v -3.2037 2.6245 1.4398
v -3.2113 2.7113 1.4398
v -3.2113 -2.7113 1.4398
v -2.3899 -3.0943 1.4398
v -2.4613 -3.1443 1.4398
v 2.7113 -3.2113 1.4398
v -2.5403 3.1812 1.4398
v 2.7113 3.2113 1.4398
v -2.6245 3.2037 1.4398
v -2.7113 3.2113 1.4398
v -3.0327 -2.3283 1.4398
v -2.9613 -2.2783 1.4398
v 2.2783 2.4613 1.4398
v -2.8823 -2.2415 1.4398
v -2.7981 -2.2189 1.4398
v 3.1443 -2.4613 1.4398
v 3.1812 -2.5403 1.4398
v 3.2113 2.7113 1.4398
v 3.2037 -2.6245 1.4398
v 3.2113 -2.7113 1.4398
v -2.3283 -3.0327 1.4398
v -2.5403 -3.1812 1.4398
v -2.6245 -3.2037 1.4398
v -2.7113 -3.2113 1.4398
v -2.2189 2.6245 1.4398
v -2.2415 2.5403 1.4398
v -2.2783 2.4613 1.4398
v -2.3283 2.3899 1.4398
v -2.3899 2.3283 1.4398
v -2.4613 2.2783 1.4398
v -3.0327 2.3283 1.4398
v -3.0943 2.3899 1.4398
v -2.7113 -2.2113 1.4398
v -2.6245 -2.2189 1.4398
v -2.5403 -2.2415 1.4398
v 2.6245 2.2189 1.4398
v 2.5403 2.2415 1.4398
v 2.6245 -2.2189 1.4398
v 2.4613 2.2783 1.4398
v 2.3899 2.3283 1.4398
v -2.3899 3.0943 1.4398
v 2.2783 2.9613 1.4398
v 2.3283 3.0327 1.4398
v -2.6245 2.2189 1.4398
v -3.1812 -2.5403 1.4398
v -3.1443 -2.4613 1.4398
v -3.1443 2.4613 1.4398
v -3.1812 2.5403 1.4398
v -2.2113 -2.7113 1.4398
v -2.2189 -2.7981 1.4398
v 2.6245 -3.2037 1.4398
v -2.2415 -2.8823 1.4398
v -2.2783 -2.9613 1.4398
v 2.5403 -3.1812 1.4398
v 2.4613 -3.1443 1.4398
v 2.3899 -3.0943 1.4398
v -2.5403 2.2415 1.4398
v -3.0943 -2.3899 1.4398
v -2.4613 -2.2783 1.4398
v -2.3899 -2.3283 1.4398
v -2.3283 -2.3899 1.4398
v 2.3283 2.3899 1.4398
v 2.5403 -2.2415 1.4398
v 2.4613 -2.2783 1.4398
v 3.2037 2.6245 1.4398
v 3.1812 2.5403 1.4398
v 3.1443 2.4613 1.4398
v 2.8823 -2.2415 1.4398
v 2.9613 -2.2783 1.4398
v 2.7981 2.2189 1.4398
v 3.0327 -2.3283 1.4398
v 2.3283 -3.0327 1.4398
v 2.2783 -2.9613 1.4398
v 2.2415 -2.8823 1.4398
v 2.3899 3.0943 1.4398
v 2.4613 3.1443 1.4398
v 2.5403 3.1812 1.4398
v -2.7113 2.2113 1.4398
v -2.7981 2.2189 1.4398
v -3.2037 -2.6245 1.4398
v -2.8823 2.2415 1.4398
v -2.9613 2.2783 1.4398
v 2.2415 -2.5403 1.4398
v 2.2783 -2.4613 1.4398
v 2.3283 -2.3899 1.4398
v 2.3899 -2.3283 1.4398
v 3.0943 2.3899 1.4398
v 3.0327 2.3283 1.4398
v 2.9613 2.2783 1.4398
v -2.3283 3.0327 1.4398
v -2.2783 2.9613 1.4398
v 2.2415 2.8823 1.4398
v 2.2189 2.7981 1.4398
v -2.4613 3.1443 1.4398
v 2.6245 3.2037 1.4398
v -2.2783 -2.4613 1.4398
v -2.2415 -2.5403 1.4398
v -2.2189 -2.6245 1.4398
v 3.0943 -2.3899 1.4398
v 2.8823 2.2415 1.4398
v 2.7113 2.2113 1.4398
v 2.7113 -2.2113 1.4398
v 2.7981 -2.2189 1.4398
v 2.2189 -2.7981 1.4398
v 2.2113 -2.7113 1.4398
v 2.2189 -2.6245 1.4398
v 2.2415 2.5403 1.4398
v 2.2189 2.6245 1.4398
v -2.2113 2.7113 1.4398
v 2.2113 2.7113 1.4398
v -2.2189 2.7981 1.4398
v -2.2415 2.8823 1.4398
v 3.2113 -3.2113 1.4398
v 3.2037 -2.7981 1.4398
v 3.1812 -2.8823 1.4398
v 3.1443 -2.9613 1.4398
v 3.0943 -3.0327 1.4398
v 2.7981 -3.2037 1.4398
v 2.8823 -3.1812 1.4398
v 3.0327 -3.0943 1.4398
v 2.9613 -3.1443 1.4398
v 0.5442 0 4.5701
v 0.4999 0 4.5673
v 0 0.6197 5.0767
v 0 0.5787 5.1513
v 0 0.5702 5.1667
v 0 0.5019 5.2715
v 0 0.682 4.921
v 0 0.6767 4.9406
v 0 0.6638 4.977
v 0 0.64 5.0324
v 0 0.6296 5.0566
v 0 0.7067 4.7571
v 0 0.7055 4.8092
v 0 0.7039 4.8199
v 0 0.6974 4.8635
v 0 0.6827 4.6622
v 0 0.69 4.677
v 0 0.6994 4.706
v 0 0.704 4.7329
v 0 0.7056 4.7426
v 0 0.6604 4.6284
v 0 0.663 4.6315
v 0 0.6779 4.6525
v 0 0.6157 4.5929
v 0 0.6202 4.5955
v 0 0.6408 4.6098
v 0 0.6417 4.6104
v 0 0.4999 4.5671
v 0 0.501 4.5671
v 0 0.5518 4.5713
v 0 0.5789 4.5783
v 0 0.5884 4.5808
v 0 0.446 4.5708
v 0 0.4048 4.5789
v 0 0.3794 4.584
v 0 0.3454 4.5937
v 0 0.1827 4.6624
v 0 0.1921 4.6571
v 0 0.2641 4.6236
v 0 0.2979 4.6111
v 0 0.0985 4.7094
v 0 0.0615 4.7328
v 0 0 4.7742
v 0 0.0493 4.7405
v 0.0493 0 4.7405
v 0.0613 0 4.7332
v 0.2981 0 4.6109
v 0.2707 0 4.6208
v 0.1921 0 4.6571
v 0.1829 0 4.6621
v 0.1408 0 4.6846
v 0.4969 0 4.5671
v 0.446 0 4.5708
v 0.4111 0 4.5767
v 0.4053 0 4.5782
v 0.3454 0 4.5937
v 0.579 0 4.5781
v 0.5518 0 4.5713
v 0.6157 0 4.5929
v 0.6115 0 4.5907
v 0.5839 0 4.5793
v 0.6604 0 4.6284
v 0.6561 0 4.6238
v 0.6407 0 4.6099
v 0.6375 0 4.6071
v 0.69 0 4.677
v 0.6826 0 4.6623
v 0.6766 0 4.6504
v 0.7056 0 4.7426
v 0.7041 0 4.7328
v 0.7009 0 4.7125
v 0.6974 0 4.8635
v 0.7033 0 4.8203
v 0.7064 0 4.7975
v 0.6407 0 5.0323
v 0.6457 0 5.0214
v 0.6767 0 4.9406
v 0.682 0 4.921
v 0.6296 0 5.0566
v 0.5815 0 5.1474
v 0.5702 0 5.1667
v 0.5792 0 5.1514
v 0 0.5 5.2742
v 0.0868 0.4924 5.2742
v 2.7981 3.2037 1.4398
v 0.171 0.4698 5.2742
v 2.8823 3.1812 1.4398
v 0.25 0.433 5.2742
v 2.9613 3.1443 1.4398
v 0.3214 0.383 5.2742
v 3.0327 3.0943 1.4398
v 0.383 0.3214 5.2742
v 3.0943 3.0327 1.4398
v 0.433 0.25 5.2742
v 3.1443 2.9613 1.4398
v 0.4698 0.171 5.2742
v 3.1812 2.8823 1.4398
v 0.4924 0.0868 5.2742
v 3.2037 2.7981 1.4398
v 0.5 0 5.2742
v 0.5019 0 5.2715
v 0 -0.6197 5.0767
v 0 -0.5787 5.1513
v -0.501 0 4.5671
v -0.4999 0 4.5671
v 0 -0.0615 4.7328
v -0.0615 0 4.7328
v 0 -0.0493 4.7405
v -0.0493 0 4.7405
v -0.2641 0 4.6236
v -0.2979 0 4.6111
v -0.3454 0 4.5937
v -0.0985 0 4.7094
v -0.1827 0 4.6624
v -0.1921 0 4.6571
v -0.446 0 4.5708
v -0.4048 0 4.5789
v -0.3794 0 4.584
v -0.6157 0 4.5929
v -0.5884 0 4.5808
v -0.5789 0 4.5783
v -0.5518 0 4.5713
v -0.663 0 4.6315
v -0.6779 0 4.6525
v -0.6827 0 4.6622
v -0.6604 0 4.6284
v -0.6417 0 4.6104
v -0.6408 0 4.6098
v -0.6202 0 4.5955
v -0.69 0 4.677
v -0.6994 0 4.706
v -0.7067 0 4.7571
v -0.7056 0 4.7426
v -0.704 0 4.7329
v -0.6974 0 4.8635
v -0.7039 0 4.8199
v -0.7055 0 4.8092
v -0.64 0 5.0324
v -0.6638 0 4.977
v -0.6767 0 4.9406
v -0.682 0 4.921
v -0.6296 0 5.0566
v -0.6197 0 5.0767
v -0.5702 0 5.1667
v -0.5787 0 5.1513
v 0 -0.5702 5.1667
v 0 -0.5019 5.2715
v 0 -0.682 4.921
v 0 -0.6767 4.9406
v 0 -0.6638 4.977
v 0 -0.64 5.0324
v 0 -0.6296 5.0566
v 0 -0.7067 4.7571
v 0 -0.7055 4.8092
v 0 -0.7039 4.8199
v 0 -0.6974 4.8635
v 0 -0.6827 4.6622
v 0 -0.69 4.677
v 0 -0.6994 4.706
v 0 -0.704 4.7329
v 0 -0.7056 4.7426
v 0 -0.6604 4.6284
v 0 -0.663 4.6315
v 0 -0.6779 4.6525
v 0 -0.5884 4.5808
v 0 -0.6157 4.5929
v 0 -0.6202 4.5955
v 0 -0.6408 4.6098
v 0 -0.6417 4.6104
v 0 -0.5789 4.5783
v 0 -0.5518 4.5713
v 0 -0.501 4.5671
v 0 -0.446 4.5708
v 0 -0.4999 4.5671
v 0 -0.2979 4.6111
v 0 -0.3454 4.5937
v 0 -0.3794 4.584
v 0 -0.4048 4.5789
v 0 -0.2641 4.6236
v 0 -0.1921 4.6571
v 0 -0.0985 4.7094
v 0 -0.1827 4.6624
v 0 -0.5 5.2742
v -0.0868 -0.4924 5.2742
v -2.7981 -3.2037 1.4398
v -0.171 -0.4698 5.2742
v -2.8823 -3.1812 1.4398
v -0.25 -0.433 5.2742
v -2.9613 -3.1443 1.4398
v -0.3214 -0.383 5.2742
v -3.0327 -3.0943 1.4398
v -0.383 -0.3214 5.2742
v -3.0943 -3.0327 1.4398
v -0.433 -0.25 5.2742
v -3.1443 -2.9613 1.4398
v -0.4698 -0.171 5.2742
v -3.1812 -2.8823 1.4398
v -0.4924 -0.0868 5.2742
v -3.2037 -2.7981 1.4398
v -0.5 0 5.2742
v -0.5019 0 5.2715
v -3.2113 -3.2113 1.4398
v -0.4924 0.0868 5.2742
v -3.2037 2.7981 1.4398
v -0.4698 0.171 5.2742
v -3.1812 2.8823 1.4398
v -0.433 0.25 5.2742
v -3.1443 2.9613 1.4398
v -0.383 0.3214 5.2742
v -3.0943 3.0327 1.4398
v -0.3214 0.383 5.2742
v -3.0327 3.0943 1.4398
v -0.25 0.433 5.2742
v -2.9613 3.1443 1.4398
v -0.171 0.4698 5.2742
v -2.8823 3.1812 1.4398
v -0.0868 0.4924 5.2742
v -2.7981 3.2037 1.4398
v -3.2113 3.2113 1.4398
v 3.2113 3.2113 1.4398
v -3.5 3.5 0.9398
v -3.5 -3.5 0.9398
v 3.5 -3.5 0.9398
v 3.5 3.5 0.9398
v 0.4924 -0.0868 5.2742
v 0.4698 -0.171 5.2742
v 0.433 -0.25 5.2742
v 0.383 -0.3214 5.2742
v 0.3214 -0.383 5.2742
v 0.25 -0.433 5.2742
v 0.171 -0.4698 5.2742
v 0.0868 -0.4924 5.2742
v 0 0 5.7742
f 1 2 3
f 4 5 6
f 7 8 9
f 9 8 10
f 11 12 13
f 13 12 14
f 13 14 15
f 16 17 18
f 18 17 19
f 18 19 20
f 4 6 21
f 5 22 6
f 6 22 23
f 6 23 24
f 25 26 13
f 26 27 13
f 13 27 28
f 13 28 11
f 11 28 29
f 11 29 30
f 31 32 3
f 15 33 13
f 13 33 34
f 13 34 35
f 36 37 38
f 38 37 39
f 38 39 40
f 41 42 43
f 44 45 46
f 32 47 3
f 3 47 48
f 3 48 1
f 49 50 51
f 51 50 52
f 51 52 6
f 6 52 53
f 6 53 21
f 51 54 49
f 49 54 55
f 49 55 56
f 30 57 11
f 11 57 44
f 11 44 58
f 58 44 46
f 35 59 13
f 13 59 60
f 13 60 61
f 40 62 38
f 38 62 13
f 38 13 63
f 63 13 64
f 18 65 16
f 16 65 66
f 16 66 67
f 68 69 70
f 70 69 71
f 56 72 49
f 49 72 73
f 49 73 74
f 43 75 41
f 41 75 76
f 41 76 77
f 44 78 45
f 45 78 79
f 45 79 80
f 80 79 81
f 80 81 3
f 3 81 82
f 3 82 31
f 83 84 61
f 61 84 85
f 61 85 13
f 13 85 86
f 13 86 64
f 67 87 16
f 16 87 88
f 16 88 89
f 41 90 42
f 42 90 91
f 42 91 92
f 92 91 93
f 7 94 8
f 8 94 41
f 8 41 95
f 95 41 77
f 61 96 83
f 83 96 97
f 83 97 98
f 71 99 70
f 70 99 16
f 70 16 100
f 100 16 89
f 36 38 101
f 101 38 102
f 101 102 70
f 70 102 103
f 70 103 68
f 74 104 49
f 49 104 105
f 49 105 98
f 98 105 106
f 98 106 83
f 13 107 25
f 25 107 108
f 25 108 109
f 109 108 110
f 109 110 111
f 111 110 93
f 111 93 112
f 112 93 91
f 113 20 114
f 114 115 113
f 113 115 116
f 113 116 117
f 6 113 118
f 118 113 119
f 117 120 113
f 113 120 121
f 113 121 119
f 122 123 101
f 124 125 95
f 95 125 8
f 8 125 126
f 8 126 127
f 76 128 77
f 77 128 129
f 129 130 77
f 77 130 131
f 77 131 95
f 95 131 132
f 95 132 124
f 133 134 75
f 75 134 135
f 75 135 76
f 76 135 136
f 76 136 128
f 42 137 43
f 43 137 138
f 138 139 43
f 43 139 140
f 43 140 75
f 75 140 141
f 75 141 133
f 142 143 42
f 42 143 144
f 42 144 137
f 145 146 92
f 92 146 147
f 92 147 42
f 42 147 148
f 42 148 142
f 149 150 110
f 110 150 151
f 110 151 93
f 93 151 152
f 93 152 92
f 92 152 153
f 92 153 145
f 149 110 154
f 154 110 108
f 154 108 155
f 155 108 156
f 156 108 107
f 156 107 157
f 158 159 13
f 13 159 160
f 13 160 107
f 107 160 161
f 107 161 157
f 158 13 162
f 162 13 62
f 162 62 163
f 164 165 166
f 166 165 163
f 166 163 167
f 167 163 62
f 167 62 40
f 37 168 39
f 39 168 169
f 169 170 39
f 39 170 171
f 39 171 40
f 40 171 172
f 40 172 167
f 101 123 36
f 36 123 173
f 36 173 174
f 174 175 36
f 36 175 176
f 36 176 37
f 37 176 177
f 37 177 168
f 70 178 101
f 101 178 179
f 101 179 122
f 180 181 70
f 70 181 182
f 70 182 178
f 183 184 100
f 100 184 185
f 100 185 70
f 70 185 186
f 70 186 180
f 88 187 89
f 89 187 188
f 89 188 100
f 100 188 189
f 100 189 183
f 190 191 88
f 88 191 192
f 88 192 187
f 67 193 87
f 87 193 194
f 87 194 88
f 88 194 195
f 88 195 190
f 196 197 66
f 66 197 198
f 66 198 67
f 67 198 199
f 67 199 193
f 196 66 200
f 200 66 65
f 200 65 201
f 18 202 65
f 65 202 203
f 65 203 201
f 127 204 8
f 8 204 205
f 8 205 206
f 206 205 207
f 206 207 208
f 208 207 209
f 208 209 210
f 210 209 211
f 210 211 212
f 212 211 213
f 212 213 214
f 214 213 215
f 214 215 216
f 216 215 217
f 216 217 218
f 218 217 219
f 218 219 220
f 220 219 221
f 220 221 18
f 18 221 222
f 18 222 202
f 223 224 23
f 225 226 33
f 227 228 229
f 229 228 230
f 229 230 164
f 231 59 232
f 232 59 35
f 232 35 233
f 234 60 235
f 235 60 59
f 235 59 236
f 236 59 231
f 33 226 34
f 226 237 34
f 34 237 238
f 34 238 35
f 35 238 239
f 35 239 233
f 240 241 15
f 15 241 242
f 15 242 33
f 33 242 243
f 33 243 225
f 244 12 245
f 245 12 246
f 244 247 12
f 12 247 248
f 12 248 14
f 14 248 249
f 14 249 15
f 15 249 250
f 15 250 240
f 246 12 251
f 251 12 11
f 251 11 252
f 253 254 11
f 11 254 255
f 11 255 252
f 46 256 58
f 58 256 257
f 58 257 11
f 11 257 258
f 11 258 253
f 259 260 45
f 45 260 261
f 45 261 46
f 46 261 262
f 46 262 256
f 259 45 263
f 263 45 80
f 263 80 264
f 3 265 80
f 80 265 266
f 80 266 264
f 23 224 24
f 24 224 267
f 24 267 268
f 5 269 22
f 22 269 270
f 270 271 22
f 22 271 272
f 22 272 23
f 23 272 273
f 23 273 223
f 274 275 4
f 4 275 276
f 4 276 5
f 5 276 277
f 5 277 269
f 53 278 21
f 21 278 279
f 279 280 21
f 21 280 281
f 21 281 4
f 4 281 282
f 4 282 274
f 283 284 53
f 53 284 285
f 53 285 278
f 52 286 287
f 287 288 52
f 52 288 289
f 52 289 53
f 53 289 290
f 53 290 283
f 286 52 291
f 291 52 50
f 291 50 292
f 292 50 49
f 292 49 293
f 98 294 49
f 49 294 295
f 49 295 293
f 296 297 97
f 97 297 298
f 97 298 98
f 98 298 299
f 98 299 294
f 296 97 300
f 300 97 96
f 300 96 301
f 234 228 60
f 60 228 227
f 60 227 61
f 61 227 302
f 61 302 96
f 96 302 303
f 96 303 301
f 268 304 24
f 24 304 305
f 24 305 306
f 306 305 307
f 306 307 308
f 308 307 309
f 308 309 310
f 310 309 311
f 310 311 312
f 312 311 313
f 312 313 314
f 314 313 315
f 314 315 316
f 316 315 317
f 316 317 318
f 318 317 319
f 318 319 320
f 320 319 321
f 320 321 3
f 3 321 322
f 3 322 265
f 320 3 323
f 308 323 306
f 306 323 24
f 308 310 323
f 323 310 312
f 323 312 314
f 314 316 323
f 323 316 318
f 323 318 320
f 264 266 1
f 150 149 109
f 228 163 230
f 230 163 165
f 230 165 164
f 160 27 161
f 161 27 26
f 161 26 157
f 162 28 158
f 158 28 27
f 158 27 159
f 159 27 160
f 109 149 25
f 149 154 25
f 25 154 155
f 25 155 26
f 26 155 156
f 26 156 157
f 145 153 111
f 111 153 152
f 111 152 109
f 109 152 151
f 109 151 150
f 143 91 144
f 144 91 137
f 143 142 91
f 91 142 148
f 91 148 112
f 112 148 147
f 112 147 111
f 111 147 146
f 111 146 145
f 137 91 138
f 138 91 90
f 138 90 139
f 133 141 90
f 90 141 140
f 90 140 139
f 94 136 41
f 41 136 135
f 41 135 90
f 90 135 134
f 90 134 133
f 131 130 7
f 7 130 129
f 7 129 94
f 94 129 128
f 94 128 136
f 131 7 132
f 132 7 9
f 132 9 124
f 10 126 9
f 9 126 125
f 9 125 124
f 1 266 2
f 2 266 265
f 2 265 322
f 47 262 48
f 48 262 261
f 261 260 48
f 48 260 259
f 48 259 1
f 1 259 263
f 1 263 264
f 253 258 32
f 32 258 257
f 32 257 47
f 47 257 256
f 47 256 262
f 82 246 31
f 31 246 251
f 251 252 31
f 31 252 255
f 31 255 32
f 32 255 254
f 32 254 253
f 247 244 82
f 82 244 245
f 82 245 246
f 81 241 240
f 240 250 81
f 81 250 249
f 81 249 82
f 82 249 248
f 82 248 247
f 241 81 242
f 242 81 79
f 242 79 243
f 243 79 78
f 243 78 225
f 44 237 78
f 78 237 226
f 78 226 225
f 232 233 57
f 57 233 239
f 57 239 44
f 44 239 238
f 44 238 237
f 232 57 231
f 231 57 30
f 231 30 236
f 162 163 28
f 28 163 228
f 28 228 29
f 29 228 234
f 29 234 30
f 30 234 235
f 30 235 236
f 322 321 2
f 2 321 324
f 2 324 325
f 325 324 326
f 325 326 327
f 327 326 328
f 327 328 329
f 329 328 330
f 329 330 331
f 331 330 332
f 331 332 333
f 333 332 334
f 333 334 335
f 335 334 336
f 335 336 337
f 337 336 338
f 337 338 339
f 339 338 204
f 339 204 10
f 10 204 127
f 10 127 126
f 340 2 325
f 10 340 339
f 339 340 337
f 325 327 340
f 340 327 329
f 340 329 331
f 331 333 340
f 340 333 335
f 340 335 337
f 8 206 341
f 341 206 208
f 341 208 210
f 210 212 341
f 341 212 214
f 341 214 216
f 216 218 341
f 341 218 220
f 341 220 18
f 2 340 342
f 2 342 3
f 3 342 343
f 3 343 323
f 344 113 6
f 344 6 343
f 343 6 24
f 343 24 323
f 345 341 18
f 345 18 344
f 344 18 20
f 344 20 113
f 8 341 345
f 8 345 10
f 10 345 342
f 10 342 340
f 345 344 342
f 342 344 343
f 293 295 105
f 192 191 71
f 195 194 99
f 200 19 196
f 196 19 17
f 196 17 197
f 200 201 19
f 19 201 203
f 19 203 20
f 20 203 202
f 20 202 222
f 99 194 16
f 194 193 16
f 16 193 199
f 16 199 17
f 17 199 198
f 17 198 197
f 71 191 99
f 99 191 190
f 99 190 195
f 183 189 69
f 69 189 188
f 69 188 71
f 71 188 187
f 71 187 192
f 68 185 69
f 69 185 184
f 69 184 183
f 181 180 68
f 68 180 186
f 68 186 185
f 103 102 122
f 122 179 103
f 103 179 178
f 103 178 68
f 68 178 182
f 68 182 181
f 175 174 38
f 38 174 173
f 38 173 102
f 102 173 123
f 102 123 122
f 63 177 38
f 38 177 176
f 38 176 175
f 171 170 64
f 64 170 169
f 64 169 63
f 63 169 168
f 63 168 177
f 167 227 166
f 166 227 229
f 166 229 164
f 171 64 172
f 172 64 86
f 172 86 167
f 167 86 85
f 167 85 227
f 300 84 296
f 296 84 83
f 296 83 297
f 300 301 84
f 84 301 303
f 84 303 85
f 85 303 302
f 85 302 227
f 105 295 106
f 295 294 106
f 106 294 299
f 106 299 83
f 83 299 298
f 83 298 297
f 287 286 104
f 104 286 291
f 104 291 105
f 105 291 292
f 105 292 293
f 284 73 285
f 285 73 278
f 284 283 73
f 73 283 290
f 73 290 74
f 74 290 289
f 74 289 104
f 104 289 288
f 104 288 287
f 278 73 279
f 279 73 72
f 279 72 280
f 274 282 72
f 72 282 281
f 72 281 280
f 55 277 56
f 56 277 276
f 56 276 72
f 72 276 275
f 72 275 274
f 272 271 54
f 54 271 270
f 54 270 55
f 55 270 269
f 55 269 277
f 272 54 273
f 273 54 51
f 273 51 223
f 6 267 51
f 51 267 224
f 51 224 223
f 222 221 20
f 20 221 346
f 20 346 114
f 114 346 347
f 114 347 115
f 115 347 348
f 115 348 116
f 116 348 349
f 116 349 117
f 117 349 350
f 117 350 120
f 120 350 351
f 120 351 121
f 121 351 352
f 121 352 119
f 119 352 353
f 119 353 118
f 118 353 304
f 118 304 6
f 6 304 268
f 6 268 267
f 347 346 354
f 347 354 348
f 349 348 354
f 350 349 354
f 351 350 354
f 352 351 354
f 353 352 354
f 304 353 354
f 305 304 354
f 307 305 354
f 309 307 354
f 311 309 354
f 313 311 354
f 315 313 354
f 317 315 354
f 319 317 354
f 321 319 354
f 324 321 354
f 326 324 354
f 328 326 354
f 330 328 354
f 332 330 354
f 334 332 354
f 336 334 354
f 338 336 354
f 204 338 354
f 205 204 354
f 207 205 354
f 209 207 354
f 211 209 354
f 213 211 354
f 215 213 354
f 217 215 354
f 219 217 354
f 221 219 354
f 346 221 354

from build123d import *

# Parameters (mm, degrees)
SKETCH1_W           = 14
SKETCH1_H           = 14
BOSS_EXTRUDE1_DEPTH = 1
BOSS_EXTRUDE1_TAPER = 30
SKETCH2_R           = 1
CIRPATTERN1_COUNT   = 4
SKETCH4_R           = 1
BOSS_EXTRUDE2_DEPTH = 10
BOSS_EXTRUDE2_TAPER = 45
SCALE1_SCALE        = 0.5


with BuildPart() as part:
    # Sketch1 → Boss-Extrude1 (new body)
    with BuildSketch(Plane.XY):
        Rectangle(SKETCH1_W, SKETCH1_H)
    extrude(amount=BOSS_EXTRUDE1_DEPTH, taper=BOSS_EXTRUDE1_TAPER)

    # Sweep1: sweep along a path in Sketch3
    with BuildLine(Plane(origin=(0, 0, 0), x_dir=(0, 0, -1), z_dir=(0.707106781, -0.707106781, 0))) as sweep1_path:
        Line((-1, 7.668784793), (-8.668784793, 0))
    # Sketch2 → Sweep1 (sweep)
    with BuildSketch(Plane.XY.offset(1)):
        with Locations((5.422649731, 5.422649731)):
            Circle(SKETCH2_R)
    sweep1 = sweep(path=sweep1_path.line)

    # CirPattern1: Sweep1 ×4 about axis
    cirpattern1_axis = Axis((0, 0, -4.23184126), (0, 0, 1))
    for i in range(1, CIRPATTERN1_COUNT):
        add(sweep1.rotate(cirpattern1_axis, i * 360 / CIRPATTERN1_COUNT))

    # Sketch4 → Boss-Extrude2 (add)
    with BuildSketch(Plane.XY.offset(8.668784793)):
        Circle(SKETCH4_R)
    extrude(amount=BOSS_EXTRUDE2_DEPTH, taper=BOSS_EXTRUDE2_TAPER)


with BuildPart() as part_1:
    # Scale1: scaled about (-3.3e-08, 4.07e-07, 1.879504051)
    add(part.part.scale(SCALE1_SCALE).moved(Location((-1.6e-08, 2.03e-07, 0.939752026))))


solid = part_1.part
